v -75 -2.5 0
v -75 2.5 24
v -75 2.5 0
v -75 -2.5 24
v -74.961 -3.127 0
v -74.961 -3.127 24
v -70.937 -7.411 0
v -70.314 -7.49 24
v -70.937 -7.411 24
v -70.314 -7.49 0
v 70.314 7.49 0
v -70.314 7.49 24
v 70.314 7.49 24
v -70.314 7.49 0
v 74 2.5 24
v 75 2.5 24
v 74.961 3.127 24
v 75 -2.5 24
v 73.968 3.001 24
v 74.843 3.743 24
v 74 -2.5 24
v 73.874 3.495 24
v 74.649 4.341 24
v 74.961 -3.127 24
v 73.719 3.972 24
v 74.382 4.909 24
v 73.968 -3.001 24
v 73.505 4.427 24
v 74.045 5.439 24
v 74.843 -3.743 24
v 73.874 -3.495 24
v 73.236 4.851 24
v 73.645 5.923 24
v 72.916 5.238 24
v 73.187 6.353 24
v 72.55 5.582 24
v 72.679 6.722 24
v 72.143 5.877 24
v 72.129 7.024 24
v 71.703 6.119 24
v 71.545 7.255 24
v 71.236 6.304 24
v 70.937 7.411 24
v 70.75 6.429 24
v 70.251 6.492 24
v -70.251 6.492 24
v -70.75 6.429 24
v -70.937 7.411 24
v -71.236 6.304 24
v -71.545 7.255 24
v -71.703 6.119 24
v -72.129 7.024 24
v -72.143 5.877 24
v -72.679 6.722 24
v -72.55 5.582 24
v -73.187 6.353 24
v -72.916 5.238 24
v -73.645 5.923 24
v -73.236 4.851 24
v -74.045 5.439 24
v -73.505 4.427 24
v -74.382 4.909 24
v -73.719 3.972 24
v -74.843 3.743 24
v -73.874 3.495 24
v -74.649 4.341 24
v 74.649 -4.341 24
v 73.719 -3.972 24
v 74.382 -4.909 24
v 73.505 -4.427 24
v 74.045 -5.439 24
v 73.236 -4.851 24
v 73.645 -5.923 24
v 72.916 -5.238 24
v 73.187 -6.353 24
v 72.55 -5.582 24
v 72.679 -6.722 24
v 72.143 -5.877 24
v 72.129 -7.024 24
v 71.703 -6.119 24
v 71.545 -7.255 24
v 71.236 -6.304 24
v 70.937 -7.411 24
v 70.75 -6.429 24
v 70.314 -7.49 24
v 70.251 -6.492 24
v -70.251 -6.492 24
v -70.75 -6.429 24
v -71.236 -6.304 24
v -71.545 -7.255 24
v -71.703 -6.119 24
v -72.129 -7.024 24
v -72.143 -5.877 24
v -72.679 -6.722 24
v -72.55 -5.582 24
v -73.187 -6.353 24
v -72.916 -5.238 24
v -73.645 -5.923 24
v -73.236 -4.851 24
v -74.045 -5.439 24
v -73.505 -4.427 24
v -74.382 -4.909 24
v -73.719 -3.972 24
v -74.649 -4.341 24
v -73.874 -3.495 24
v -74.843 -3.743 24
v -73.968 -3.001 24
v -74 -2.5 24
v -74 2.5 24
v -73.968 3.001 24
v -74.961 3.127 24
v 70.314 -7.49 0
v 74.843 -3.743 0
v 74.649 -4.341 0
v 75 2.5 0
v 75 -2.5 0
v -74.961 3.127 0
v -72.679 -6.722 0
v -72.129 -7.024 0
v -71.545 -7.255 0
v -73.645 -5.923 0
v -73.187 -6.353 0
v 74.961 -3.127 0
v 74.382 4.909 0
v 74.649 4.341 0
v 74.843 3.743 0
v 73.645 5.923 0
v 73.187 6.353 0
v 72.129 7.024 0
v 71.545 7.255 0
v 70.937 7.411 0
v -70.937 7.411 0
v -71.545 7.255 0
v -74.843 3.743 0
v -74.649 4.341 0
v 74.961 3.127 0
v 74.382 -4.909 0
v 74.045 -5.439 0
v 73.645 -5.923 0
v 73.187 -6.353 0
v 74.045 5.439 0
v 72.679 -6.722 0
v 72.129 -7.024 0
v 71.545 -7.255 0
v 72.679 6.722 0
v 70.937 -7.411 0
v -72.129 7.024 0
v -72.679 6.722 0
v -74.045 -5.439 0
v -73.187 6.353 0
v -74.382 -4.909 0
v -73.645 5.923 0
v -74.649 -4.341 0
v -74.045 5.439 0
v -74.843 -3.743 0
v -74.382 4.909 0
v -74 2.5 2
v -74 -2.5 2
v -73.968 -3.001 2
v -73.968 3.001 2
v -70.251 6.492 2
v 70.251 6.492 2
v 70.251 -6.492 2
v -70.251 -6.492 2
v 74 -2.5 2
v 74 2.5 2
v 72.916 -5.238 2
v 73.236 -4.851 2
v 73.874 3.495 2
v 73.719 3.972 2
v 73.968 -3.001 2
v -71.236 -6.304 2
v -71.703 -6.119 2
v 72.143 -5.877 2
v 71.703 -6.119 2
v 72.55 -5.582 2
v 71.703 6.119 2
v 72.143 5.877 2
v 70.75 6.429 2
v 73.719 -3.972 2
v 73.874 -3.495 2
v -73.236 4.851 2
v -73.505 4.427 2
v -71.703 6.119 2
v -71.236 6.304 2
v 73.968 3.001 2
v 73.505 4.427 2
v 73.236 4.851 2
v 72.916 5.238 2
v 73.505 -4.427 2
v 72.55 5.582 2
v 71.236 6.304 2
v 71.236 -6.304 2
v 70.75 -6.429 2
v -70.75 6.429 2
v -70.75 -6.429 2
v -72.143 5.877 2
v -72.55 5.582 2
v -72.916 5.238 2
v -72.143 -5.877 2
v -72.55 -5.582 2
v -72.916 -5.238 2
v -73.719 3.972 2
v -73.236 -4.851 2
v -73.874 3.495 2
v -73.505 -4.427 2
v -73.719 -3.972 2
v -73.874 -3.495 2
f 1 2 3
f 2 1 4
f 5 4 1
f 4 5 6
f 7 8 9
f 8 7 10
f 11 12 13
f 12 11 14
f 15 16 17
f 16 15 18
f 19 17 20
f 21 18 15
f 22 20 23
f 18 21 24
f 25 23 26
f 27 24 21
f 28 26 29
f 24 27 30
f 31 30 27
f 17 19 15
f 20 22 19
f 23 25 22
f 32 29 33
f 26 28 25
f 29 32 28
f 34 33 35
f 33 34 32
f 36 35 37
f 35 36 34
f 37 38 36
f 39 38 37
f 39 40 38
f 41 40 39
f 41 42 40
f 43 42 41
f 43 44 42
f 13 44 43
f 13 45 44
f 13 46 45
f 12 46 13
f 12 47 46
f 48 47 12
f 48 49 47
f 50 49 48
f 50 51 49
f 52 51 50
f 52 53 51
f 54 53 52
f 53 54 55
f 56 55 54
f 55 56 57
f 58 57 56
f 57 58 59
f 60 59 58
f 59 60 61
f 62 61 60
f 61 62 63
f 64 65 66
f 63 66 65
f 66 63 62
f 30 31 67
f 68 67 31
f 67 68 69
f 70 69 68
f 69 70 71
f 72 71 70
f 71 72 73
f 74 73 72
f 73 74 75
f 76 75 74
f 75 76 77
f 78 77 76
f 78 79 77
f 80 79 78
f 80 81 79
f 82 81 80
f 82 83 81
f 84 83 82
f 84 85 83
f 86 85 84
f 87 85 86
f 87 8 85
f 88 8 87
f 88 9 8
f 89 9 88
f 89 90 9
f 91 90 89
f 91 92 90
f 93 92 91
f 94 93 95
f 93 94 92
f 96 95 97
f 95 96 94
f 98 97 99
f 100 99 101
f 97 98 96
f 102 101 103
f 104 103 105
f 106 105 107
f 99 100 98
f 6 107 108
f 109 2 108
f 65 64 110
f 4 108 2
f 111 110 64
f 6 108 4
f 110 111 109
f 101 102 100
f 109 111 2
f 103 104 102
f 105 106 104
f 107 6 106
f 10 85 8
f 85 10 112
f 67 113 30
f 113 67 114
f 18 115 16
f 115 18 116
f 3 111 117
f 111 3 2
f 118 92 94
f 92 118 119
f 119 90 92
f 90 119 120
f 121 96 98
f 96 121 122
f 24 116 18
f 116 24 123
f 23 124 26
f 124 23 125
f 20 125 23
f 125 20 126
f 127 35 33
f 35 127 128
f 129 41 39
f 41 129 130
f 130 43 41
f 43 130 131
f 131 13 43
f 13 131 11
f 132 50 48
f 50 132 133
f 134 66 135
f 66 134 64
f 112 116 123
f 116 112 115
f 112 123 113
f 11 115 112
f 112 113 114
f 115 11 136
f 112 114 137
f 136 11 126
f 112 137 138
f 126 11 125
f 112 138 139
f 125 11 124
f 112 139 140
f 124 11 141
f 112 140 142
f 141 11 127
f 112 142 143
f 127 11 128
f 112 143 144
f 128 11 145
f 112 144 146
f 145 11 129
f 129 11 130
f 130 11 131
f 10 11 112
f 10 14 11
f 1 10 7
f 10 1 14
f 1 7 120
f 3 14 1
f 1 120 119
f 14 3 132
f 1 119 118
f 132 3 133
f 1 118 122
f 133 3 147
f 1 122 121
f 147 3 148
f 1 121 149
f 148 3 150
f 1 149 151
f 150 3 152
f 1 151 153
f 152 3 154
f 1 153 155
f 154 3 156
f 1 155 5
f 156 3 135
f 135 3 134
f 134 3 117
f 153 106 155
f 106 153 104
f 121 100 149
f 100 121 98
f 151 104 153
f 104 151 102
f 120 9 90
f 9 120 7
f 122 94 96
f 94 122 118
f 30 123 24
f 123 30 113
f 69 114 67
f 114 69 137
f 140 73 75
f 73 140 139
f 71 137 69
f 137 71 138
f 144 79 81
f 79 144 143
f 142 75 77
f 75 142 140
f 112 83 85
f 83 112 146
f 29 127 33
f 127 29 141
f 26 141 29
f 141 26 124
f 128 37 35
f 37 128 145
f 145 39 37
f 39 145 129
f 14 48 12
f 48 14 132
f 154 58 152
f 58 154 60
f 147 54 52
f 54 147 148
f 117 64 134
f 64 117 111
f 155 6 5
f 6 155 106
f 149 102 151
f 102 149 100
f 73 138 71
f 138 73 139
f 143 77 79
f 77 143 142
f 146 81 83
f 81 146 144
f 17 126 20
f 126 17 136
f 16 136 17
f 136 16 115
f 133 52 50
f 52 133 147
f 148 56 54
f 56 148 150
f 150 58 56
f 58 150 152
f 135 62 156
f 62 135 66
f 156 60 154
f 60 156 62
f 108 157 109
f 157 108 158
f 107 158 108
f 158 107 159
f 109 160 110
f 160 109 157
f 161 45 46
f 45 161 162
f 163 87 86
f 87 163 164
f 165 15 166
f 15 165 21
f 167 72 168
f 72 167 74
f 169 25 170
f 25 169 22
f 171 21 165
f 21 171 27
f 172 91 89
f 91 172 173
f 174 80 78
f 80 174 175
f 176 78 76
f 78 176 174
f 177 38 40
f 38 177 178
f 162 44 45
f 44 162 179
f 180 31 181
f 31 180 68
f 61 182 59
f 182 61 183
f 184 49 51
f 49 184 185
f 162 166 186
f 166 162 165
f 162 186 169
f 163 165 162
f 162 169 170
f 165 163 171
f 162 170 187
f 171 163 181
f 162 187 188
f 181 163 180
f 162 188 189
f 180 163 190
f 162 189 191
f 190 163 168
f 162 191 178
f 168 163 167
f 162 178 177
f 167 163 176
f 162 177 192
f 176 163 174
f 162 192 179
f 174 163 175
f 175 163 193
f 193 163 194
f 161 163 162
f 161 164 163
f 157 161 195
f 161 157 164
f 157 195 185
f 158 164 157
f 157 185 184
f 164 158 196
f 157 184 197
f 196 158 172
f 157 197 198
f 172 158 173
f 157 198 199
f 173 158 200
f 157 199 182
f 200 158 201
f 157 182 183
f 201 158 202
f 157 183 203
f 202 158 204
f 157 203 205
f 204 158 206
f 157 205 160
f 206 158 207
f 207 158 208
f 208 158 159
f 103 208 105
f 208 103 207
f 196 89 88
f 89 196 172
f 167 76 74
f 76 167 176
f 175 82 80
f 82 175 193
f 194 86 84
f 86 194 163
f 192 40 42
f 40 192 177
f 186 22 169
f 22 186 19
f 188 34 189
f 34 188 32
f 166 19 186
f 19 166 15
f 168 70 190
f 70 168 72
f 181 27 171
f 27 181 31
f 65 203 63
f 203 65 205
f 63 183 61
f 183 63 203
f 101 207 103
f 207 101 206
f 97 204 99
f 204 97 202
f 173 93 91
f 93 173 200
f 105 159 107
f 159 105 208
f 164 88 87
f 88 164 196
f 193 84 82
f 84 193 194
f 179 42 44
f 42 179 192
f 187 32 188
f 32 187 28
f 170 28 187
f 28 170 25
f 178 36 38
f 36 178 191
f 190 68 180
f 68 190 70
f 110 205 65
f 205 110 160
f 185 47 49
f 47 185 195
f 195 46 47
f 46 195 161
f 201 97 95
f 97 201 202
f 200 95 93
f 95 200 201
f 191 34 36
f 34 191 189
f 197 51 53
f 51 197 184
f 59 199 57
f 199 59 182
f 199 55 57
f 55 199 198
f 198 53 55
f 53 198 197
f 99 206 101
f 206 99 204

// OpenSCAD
$fn = 50;


difference() {
	union() {
		hull() {
			translate(v = [-70.0000000000, 2.5000000000, 0]) {
				cylinder(h = 24, r = 5);
			}
			translate(v = [70.0000000000, 2.5000000000, 0]) {
				cylinder(h = 24, r = 5);
			}
			translate(v = [-70.0000000000, -2.5000000000, 0]) {
				cylinder(h = 24, r = 5);
			}
			translate(v = [70.0000000000, -2.5000000000, 0]) {
				cylinder(h = 24, r = 5);
			}
		}
	}
	union() {
		translate(v = [0, 0, 2]) {
			hull() {
				translate(v = [-70.0000000000, 2.5000000000, 0]) {
					cylinder(h = 22, r = 4);
				}
				translate(v = [70.0000000000, 2.5000000000, 0]) {
					cylinder(h = 22, r = 4);
				}
				translate(v = [-70.0000000000, -2.5000000000, 0]) {
					cylinder(h = 22, r = 4);
				}
				translate(v = [70.0000000000, -2.5000000000, 0]) {
					cylinder(h = 22, r = 4);
				}
			}
		}
	}
}
